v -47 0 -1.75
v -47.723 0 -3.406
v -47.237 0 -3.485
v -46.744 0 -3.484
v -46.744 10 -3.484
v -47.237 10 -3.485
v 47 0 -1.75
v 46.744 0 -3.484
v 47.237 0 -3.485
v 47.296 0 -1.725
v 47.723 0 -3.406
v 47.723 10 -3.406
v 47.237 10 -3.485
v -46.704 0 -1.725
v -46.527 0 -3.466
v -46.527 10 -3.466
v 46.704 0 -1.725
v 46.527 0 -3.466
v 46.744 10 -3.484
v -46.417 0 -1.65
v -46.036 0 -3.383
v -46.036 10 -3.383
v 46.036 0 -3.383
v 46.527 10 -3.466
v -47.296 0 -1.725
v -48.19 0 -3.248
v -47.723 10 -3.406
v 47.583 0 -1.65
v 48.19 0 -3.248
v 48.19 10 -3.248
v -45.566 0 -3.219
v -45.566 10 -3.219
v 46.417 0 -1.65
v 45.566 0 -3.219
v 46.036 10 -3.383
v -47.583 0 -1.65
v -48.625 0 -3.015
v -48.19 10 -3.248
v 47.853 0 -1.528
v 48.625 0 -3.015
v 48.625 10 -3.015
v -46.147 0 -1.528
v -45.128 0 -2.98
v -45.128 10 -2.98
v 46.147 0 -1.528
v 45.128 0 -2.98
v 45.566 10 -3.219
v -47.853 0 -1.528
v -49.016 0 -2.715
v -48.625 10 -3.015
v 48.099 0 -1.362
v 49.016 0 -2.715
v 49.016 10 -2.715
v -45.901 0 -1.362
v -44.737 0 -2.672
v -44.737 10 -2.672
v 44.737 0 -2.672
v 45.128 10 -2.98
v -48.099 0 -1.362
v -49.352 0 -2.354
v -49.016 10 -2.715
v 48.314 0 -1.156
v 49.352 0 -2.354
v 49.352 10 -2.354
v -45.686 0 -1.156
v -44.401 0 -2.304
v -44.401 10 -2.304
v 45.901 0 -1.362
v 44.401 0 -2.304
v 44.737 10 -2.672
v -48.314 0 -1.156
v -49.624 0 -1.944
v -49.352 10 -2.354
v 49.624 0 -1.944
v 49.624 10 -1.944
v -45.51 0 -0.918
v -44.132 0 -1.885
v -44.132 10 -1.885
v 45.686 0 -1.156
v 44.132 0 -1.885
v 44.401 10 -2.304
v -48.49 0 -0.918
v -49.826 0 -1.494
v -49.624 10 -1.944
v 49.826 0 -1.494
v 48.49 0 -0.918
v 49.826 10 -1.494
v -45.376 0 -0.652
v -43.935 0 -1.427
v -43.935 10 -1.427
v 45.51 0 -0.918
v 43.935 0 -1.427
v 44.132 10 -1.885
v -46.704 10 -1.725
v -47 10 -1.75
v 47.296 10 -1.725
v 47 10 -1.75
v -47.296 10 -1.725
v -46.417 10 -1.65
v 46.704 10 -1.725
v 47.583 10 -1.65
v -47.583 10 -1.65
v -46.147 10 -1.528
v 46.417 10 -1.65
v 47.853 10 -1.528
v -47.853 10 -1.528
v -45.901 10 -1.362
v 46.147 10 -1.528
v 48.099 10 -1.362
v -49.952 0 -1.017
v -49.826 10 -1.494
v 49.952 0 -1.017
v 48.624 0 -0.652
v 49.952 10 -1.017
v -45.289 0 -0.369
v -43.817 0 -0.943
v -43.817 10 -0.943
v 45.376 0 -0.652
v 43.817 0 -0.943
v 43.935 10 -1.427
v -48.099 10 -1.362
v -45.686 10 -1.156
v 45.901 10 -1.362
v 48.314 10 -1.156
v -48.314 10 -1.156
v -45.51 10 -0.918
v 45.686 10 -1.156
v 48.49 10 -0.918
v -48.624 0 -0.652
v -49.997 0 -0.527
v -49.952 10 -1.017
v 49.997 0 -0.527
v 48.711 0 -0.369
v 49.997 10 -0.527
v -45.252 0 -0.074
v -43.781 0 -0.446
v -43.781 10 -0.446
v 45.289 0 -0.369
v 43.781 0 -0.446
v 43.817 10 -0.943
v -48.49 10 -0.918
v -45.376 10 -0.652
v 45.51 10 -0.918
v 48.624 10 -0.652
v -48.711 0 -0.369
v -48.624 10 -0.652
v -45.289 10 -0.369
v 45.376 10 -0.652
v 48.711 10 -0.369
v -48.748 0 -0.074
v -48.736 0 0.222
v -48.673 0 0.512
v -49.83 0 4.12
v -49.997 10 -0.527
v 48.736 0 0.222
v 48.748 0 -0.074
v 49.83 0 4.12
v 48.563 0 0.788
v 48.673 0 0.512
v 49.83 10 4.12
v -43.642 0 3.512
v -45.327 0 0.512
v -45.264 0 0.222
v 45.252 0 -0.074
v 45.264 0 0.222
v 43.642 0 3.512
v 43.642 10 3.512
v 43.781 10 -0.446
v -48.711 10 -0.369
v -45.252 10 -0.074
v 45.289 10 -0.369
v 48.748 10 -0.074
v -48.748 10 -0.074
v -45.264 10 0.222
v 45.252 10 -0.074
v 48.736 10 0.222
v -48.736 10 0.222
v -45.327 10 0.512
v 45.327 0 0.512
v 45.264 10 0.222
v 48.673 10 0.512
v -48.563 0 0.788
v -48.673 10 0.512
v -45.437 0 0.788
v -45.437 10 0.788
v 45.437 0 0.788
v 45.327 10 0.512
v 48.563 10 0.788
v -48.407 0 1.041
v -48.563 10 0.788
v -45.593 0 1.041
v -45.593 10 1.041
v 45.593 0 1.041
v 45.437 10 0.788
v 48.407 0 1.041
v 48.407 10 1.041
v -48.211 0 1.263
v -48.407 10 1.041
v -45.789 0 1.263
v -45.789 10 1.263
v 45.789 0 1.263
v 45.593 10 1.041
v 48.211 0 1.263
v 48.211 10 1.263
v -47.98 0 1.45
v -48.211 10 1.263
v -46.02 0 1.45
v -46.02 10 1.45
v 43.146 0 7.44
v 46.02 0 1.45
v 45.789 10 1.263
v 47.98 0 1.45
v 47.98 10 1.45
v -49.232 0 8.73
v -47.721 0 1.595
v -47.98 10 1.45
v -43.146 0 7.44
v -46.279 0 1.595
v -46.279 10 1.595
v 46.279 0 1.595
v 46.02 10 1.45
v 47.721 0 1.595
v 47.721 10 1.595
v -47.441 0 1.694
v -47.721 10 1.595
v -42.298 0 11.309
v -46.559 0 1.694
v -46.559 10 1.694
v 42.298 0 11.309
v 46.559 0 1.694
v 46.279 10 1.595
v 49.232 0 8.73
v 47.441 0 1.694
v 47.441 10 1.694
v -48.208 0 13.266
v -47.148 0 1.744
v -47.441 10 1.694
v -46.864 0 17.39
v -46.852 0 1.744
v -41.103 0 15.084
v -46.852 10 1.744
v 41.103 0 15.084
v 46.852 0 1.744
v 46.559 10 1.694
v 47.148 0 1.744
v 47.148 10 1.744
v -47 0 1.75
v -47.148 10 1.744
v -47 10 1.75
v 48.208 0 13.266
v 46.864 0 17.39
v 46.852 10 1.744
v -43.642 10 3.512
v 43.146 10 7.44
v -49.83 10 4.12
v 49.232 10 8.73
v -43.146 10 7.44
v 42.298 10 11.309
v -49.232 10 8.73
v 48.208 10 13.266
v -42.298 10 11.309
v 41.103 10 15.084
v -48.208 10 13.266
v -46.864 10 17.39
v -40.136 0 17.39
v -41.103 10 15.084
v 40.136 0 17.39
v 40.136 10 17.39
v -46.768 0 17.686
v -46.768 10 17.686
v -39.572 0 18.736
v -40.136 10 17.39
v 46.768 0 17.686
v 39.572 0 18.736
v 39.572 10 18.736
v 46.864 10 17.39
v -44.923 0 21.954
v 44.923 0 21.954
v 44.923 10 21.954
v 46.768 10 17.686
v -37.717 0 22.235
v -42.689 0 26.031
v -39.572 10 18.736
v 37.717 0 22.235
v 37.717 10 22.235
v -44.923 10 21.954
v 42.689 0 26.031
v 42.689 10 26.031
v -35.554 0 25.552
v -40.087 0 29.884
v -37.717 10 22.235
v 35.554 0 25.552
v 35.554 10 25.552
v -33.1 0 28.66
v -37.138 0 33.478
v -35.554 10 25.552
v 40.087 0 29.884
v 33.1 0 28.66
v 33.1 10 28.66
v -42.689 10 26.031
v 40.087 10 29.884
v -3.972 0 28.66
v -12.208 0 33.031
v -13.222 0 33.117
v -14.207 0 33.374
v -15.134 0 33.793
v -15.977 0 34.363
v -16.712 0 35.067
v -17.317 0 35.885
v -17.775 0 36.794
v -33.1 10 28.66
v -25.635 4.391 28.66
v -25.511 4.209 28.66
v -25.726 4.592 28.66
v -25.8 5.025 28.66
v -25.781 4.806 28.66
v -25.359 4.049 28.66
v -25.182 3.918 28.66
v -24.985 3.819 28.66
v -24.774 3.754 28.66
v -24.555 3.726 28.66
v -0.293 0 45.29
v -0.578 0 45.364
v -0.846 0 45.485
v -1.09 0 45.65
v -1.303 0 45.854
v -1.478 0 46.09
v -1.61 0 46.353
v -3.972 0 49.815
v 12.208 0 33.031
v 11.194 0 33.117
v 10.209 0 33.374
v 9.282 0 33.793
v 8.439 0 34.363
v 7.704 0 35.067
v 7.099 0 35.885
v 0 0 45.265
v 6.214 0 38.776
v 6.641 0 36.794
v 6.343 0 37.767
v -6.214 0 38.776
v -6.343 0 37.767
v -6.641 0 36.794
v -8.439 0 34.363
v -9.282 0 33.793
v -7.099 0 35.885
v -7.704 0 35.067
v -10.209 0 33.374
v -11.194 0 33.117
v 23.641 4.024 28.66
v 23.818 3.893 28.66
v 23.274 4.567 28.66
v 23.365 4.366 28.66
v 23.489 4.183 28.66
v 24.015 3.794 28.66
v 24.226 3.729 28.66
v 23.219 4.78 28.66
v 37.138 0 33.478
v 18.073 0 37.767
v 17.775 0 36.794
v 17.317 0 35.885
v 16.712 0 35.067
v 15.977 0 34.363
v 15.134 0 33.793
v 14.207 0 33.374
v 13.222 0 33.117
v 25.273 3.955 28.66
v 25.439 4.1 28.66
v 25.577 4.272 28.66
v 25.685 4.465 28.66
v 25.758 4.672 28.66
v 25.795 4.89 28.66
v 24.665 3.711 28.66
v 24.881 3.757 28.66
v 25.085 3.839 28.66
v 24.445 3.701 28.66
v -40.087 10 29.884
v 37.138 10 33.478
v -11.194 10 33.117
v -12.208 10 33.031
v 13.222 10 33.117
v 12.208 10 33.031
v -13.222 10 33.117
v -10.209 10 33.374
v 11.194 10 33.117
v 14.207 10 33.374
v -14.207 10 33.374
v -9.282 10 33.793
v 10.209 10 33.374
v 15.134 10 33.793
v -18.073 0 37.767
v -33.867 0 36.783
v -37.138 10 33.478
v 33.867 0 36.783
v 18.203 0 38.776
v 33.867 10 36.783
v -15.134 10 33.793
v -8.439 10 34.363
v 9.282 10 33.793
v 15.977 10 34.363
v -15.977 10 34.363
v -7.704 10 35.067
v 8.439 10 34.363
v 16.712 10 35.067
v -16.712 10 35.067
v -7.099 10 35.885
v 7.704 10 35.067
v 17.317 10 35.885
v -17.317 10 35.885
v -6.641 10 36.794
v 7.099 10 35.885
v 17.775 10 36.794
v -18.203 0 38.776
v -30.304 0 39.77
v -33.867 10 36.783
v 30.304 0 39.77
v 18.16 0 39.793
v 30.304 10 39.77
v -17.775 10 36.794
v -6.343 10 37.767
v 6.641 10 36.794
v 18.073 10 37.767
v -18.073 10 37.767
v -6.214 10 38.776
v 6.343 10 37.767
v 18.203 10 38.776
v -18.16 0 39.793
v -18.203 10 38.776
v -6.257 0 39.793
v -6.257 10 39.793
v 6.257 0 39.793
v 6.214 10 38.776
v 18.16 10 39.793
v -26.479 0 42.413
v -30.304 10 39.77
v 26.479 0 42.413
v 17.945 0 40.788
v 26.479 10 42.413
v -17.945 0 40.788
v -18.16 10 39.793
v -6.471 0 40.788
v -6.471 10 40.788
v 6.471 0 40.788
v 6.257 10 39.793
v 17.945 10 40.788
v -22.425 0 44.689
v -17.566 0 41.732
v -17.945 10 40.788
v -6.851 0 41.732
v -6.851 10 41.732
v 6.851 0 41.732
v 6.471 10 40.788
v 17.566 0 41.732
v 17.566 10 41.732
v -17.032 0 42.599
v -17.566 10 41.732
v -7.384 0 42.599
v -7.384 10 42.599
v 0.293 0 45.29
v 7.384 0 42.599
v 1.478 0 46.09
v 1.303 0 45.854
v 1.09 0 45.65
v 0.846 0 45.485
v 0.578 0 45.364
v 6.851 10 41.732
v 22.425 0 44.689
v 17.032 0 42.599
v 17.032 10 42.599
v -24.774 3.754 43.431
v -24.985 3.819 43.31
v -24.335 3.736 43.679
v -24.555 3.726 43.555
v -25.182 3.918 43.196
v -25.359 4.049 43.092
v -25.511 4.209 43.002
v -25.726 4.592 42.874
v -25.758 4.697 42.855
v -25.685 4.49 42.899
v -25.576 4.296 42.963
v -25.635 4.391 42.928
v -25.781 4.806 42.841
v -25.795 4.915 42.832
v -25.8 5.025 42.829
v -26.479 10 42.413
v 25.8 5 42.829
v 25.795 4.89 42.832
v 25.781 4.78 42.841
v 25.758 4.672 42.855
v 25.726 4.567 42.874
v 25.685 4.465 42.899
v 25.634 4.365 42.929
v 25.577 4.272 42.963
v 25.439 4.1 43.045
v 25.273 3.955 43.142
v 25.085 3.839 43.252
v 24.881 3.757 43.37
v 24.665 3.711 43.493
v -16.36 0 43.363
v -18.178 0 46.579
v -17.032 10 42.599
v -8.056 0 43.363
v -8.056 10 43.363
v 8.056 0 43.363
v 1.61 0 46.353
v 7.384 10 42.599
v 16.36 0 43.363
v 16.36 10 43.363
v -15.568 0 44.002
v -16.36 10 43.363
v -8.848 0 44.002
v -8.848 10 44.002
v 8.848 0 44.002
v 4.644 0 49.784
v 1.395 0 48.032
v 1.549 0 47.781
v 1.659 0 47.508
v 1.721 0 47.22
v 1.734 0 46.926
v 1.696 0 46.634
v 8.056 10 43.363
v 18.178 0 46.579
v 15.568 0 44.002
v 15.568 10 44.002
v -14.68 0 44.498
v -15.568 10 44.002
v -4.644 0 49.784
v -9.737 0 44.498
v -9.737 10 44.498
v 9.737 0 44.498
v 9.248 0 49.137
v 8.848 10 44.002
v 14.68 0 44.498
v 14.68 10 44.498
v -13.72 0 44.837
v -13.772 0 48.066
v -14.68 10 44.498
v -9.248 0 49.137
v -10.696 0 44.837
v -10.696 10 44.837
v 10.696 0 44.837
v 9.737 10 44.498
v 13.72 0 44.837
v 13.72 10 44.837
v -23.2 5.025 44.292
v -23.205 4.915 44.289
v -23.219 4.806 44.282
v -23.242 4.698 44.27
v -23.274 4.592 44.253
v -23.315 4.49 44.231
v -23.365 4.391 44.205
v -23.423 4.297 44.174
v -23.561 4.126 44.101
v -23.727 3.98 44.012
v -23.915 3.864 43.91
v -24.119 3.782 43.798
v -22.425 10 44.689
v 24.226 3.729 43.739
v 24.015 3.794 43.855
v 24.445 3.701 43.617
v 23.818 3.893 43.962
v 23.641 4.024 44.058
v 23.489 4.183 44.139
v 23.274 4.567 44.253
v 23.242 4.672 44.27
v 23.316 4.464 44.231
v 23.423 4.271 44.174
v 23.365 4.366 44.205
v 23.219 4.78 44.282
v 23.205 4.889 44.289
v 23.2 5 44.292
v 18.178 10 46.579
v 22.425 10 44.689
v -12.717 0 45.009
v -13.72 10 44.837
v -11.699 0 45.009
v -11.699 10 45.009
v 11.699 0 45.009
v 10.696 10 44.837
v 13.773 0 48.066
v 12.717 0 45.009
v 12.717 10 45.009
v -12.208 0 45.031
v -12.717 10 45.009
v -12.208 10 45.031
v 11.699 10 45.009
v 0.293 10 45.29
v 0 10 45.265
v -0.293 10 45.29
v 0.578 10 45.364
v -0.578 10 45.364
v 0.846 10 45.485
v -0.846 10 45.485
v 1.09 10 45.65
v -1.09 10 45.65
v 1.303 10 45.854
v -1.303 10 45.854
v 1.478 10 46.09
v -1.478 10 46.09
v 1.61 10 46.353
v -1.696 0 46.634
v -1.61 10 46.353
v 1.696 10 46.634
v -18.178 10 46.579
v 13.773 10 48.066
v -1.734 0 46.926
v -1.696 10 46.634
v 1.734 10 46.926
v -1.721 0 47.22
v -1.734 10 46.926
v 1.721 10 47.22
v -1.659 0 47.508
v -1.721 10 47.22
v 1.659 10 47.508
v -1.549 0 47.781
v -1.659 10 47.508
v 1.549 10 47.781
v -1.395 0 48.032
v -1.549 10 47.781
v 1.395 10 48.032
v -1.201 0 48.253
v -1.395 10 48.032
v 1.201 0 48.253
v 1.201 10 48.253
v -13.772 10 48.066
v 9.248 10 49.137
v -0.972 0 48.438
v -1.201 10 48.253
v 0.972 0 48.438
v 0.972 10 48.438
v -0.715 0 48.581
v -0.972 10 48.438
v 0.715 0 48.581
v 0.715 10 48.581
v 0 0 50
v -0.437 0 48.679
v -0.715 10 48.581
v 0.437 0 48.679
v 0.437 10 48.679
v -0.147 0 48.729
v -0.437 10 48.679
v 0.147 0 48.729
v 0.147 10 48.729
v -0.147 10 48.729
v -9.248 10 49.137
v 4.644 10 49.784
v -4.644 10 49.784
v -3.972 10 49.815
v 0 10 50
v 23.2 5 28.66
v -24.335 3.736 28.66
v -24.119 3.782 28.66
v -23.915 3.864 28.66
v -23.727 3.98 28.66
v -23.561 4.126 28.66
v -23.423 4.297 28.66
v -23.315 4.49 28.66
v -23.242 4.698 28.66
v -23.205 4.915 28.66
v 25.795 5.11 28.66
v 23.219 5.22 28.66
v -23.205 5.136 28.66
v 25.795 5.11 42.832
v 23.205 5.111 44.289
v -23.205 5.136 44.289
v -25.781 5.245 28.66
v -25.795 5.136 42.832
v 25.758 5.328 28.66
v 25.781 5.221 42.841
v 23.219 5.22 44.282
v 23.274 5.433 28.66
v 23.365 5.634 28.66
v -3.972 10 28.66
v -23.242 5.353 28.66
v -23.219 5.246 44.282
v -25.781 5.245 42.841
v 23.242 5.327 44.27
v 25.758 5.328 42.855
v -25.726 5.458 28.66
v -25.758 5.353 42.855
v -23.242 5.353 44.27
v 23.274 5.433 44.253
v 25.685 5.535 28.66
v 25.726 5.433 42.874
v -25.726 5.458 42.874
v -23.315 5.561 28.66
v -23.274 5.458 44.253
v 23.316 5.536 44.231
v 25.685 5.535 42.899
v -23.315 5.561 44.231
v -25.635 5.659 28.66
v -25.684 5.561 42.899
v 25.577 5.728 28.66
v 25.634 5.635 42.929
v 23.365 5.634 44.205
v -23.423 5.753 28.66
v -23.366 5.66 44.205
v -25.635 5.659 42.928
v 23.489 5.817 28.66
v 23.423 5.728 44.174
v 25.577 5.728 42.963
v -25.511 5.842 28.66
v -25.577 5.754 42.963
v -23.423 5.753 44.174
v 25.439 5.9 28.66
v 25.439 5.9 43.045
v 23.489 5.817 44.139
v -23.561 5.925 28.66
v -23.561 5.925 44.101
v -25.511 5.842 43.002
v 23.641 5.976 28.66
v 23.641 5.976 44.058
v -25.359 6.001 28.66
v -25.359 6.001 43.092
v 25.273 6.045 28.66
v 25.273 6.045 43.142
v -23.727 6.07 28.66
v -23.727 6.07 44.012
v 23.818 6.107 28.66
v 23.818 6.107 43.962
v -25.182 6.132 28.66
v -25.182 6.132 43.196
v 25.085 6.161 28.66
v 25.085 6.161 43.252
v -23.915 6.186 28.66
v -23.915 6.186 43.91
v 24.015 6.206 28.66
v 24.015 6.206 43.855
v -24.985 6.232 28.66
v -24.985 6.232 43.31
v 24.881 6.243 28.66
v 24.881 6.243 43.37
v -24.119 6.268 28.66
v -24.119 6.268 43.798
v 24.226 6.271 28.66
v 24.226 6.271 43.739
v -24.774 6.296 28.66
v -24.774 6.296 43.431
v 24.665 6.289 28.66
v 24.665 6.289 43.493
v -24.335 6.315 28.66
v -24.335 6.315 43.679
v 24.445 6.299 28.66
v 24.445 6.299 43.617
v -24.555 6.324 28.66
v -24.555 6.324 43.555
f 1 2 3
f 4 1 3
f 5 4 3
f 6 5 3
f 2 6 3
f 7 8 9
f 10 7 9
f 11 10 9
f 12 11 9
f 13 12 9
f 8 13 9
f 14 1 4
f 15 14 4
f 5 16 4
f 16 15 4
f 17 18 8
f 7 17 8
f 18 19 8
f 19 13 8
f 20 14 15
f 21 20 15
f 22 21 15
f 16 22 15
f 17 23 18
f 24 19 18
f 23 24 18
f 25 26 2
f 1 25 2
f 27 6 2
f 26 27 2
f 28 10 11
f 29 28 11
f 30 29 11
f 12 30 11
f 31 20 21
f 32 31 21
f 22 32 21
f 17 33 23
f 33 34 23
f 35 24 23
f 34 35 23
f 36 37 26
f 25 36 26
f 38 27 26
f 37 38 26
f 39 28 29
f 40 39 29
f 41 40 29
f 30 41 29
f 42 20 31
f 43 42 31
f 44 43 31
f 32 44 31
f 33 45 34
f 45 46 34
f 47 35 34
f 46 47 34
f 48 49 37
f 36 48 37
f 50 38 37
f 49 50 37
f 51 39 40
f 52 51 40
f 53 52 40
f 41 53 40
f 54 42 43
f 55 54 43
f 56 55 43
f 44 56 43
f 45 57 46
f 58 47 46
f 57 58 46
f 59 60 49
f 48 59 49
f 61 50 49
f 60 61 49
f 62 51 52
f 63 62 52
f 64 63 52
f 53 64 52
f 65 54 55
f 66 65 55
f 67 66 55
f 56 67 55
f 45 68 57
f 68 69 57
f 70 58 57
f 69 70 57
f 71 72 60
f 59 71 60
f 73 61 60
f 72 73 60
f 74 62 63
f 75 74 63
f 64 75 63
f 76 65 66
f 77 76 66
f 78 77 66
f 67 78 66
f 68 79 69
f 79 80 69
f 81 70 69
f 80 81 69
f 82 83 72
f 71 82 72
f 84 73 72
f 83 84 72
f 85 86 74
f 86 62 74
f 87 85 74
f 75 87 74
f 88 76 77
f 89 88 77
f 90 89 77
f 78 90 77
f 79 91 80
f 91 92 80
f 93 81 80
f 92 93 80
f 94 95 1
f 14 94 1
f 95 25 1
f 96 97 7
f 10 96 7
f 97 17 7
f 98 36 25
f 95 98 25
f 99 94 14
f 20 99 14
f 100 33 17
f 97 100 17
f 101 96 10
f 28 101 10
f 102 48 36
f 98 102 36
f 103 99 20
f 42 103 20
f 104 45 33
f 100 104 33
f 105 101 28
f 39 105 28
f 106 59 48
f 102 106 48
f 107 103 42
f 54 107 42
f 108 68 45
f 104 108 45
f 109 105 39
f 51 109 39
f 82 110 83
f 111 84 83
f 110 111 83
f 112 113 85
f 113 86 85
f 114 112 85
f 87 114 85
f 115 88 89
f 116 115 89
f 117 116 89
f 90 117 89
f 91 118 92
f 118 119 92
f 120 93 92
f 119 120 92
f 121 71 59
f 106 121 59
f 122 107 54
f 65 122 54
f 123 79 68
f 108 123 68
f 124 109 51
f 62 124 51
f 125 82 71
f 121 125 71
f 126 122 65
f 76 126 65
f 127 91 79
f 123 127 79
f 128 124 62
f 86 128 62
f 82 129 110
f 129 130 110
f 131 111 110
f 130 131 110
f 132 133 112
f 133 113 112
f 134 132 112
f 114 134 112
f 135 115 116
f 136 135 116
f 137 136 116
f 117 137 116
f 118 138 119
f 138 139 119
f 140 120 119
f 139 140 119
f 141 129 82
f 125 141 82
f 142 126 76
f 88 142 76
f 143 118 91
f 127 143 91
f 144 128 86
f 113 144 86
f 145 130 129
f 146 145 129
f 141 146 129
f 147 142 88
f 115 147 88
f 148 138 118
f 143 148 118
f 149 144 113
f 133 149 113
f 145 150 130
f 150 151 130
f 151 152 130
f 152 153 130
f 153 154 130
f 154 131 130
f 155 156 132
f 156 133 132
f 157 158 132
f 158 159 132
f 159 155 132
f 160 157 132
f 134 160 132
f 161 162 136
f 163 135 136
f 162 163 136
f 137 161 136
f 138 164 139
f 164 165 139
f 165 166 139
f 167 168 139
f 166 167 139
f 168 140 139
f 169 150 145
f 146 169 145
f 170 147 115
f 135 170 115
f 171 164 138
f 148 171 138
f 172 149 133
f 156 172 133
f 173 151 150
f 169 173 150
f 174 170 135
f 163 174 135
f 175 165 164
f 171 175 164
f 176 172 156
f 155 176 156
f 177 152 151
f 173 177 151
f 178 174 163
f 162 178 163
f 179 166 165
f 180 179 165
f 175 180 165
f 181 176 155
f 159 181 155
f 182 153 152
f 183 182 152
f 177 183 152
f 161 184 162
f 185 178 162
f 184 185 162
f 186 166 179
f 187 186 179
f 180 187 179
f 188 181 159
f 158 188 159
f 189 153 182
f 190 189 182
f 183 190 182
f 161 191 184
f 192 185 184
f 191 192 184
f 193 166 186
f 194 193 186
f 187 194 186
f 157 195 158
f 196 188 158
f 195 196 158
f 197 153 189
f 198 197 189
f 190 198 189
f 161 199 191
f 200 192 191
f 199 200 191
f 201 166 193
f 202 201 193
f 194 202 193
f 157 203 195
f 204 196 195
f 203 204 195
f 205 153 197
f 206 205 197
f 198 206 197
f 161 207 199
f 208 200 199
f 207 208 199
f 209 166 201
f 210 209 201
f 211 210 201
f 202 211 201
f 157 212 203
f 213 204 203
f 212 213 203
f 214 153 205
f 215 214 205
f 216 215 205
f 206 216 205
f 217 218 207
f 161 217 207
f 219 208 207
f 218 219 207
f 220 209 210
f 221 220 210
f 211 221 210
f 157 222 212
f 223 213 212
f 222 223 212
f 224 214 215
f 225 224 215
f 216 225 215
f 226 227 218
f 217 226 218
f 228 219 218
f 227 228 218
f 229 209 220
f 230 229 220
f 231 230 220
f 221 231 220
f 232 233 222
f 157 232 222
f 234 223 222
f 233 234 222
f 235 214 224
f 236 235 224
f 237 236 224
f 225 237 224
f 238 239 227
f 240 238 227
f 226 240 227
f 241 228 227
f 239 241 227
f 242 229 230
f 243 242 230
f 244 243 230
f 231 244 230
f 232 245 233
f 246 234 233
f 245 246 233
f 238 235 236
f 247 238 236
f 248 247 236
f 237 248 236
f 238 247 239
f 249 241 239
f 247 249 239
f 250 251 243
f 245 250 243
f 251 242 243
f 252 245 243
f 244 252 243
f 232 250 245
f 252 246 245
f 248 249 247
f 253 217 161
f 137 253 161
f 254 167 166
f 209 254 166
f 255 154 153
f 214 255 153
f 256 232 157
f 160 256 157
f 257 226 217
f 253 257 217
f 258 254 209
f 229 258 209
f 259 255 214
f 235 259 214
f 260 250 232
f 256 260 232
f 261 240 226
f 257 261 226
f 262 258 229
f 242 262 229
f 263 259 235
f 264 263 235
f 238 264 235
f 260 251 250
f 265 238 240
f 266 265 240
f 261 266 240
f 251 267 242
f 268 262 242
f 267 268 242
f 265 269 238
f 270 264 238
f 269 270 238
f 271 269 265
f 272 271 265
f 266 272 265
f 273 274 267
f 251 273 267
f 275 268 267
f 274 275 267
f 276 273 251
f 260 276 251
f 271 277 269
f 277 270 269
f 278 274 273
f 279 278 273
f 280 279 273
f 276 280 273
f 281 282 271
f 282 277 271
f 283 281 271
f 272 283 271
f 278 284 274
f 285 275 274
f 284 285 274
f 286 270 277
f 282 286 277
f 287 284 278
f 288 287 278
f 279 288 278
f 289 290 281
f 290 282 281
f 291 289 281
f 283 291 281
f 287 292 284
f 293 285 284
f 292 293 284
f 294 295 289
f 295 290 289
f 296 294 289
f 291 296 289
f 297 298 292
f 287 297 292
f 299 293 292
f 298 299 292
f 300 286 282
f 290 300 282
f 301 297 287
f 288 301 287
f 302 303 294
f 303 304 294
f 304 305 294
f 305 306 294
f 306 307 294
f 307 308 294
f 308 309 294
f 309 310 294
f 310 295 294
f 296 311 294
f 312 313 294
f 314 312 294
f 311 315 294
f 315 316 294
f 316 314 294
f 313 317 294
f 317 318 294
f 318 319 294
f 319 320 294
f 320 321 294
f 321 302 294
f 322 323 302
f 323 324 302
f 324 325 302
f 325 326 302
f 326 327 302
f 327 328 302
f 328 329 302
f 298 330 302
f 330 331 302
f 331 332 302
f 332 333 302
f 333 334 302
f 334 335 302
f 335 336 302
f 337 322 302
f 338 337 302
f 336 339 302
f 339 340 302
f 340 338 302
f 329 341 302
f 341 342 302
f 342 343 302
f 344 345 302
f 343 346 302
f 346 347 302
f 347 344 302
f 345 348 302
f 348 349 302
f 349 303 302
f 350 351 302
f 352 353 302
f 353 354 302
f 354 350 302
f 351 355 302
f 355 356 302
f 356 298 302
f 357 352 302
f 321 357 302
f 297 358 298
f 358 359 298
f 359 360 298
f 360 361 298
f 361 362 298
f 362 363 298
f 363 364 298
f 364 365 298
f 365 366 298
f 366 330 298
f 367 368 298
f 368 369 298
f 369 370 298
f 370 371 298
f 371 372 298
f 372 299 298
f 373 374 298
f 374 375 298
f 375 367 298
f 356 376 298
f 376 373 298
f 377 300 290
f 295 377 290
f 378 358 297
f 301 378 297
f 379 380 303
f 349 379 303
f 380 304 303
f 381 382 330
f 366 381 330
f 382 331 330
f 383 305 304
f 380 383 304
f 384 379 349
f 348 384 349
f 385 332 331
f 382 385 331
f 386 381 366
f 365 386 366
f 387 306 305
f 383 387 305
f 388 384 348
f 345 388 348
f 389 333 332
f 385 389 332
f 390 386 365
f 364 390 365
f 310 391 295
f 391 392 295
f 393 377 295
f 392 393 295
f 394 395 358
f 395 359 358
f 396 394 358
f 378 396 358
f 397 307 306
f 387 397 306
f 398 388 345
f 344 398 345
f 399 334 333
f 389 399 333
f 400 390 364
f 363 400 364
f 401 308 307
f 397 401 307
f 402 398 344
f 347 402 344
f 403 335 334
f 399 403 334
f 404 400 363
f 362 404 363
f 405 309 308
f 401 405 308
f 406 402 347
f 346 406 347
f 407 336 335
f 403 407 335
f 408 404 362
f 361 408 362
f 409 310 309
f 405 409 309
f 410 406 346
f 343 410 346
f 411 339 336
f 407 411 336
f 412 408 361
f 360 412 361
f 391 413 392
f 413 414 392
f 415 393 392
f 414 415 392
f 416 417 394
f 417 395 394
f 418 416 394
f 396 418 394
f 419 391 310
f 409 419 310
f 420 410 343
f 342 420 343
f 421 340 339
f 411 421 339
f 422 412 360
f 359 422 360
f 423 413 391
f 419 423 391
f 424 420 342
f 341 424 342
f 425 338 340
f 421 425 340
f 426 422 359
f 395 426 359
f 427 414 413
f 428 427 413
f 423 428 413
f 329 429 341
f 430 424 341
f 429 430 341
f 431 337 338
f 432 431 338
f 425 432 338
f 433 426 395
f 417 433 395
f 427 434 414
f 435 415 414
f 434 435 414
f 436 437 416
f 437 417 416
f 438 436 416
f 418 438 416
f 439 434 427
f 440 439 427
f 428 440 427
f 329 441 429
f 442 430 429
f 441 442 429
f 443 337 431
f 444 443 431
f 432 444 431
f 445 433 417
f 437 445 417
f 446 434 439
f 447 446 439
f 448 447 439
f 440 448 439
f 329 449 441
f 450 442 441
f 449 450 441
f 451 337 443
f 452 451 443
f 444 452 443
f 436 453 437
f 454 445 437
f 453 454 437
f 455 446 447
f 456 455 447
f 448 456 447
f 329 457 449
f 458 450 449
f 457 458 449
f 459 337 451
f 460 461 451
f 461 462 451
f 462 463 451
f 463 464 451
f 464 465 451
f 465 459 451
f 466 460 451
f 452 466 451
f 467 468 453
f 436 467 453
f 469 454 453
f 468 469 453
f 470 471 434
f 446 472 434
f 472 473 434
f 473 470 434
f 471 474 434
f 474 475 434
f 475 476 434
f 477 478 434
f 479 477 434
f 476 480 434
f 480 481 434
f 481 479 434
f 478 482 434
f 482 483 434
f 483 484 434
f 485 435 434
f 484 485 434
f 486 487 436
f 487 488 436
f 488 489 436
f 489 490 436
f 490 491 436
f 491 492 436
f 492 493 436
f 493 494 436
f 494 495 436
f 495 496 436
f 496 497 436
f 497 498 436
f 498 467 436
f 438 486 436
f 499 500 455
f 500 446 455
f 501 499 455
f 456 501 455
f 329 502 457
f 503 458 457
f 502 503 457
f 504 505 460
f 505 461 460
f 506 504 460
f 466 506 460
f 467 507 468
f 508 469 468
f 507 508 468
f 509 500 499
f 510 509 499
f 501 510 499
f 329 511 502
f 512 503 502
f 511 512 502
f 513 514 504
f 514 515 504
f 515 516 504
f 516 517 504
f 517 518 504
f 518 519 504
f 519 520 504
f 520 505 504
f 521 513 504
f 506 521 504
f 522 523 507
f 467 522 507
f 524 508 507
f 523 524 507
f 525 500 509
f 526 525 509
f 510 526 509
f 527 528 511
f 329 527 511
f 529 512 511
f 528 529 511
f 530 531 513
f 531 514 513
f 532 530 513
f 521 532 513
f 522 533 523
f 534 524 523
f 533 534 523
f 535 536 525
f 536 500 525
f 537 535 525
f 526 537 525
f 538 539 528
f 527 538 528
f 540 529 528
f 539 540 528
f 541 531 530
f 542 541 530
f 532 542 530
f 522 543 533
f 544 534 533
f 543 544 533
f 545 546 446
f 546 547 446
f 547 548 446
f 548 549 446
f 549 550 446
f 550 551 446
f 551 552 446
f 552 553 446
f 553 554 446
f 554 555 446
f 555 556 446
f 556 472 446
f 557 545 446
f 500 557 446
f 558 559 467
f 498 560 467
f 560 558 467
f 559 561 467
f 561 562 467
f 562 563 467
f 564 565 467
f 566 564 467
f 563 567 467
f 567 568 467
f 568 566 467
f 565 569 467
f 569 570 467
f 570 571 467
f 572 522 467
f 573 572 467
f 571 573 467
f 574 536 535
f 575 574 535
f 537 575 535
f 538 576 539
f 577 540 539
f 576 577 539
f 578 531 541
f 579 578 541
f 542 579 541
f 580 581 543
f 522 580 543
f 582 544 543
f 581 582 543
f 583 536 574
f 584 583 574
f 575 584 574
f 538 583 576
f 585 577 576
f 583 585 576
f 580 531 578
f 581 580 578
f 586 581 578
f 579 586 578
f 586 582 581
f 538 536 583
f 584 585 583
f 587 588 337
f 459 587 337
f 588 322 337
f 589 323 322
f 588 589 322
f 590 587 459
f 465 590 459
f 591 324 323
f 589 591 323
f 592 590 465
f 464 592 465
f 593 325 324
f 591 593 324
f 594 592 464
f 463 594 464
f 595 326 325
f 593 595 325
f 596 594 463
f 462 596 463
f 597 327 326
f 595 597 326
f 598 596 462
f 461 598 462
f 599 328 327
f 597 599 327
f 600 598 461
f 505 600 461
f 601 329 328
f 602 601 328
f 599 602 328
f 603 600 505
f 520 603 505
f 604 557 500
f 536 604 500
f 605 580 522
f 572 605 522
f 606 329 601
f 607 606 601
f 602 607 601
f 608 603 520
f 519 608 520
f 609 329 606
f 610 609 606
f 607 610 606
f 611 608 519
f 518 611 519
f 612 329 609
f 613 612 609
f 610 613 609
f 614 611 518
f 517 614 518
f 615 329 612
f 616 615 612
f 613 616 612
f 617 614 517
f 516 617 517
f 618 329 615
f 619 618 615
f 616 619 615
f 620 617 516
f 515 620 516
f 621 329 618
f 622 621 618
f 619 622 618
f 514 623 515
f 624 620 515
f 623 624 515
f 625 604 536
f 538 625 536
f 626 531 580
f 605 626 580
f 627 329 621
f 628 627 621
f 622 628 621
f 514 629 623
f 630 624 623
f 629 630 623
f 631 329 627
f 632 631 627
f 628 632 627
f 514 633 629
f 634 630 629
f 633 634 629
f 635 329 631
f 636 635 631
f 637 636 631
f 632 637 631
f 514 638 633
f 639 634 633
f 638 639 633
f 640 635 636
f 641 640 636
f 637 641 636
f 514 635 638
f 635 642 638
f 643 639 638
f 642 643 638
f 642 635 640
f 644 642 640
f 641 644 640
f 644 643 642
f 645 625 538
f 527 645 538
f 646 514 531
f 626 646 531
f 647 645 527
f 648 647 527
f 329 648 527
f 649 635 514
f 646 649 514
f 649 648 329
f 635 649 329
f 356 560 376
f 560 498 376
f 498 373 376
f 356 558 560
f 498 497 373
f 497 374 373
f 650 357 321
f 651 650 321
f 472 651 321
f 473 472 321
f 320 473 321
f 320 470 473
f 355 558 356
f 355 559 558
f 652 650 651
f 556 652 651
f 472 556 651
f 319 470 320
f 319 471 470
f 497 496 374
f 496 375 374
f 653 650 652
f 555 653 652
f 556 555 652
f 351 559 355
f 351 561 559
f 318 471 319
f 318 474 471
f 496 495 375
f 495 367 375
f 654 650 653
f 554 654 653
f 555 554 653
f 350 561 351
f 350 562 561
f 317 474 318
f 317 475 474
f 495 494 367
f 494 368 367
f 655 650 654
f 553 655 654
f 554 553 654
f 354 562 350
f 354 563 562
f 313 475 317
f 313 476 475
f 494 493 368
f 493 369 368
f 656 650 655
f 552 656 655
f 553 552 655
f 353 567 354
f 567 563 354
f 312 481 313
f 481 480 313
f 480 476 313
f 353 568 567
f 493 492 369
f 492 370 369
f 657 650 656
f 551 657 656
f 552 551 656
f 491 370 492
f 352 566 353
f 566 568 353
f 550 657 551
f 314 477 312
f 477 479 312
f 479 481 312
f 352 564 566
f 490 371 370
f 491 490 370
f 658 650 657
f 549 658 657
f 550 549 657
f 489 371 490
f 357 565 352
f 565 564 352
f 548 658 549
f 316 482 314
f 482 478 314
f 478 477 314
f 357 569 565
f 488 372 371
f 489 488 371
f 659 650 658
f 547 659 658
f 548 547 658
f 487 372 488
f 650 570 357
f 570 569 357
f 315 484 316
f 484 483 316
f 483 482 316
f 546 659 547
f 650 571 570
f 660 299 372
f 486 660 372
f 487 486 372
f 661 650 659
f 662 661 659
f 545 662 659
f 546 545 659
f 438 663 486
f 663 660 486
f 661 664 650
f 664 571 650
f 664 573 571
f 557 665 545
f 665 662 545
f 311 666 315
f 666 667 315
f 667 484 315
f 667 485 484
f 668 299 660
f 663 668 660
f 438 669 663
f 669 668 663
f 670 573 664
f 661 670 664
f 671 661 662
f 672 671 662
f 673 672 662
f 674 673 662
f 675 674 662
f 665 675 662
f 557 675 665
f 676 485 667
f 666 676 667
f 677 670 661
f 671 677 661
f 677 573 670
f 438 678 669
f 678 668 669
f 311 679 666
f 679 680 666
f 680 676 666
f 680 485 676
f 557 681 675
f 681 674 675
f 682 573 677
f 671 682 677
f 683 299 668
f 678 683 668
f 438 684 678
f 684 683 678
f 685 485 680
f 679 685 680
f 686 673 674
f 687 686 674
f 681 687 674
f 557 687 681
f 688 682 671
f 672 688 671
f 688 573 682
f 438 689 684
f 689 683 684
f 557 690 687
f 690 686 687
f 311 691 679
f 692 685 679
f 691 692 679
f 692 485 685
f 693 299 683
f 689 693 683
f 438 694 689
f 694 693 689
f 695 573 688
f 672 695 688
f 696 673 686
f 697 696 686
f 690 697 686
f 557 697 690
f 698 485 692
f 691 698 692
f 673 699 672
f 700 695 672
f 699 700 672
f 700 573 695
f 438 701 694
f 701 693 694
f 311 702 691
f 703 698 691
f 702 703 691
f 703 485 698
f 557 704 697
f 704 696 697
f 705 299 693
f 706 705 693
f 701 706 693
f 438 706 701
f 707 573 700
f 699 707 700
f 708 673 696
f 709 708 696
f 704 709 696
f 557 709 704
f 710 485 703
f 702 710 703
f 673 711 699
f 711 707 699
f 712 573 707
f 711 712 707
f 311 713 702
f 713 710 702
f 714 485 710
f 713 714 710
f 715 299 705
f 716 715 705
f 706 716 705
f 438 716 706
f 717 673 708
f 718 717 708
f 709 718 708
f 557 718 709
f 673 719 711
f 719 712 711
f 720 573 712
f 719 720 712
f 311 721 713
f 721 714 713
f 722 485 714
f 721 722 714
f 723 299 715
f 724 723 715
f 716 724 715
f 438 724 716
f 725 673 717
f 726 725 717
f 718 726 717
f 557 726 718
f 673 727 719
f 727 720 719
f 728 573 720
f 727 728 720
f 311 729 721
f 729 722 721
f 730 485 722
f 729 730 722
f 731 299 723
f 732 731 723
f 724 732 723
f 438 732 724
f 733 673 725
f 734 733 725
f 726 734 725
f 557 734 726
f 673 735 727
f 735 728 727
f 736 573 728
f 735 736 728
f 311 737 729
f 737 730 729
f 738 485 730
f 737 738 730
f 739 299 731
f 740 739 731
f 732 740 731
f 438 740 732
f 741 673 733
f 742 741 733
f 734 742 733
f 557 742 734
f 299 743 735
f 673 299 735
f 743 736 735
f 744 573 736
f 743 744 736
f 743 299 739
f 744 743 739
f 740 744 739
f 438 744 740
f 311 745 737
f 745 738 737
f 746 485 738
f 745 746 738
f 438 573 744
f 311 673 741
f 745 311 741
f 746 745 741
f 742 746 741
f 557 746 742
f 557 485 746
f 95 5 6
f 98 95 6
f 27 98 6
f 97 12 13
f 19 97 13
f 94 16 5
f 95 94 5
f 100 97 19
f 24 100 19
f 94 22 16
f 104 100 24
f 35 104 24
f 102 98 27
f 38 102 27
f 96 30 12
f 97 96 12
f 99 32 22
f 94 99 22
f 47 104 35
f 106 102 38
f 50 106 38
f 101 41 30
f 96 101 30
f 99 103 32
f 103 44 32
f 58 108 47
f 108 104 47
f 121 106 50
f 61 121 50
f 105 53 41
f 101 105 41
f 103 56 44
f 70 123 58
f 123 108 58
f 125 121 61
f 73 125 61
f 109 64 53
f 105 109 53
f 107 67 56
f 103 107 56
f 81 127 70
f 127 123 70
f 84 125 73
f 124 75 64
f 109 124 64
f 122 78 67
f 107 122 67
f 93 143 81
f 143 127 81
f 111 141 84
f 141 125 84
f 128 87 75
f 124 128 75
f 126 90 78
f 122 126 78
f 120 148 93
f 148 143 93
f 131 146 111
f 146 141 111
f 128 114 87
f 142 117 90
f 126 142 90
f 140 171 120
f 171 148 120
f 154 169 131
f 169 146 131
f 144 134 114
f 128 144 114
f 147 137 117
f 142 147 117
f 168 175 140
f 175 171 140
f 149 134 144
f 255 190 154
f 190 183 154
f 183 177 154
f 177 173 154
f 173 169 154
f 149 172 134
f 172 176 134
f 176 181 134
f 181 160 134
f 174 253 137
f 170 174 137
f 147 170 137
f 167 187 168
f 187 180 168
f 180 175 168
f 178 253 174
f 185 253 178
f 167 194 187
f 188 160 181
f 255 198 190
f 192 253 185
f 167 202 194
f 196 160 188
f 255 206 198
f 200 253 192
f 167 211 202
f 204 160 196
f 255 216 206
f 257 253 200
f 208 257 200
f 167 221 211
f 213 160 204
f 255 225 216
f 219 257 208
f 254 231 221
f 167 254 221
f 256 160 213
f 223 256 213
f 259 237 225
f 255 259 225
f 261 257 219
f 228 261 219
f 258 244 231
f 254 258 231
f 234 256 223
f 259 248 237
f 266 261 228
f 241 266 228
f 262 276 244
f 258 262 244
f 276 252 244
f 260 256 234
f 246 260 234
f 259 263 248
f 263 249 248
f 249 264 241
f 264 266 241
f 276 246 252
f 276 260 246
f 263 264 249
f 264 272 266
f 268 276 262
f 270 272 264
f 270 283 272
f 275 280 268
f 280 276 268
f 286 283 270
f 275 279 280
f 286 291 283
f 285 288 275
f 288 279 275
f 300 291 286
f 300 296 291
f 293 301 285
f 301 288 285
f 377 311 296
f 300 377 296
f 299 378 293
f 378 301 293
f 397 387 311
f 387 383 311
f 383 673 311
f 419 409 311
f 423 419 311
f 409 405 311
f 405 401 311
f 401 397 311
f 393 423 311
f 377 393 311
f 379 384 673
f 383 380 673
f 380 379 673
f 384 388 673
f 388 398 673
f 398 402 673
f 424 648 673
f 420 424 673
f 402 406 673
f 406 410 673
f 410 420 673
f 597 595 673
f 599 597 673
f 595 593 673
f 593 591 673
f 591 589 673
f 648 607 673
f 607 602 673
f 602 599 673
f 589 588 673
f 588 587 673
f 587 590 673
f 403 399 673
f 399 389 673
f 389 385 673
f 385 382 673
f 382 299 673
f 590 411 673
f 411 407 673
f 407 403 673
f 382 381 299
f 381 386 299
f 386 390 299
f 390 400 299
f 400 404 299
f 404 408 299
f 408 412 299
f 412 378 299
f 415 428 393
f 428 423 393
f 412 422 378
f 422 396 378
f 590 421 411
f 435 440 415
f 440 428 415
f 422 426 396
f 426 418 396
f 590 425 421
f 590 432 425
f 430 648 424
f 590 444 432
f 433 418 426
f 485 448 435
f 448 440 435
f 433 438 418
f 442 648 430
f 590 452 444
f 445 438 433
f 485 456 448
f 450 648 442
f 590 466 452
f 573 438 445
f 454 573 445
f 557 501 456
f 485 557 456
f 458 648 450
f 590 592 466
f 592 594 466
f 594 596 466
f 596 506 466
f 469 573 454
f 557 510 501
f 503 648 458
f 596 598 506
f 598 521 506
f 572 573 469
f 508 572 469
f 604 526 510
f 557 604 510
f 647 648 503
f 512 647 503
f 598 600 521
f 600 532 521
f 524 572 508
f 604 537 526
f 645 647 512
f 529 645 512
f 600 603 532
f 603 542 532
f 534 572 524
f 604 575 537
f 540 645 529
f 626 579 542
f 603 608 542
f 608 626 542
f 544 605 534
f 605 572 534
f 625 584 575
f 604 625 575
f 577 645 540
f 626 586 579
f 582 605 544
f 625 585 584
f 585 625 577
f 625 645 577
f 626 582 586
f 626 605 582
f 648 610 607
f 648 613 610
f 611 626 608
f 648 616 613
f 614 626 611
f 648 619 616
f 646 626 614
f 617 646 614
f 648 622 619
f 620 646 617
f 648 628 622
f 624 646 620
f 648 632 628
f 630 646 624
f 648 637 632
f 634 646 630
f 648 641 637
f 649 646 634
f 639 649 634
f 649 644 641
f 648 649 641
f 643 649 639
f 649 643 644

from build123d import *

# Parameters (mm, degrees)
SKETCH1_R           = 1.75
SKETCH1_R_2         = 6
SKETCH1_R_3         = 1.735302394
BOSS_EXTRUDE1_DEPTH = 10
FILLET2_R           = 3
SKETCH2_R           = 1.3
CUT_EXTRUDE1_DEPTH  = 20


with BuildPart() as part:
    # Sketch1 → Boss-Extrude1 (new body)
    with BuildSketch(Plane(origin=(0, 0, 0), x_dir=(1, 0, 0), z_dir=(0, 1, 0))):
        with BuildLine():
            Line((49.859310292, 3.748223209), (43.664405044, 3.223270017))
            ThreePointArc((43.664405044, 3.223270017), (41.560921763, -13.771692694), (33.099549072, -28.659895126))
            Line((33.099549072, -28.659895126), (-33.099549072, -28.659895126))
            ThreePointArc((-33.099549072, -28.659895126), (-41.560921763, -13.771692694), (-43.664405044, 3.223270017))
            Line((-43.664405044, 3.223270017), (-49.859310292, 3.748223209))
            ThreePointArc((-49.859310292, 3.748223209), (0, -50), (49.859310292, 3.748223209))
        make_face()
        with Locations(Location((-47, 0, 0), (0, 0, 270))):
            Circle(SKETCH1_R, mode=Mode.SUBTRACT)
        with Locations(Location((-12.208117153, -39.030992967, 0), (0, 0, 270))):
            Circle(SKETCH1_R_2, mode=Mode.SUBTRACT)
        with Locations(Location((0, -47, 0), (0, 0, 90))):
            Circle(SKETCH1_R_3, mode=Mode.SUBTRACT)
        with Locations(Location((12.208117153, -39.030992967, 0), (0, 0, 90))):
            Circle(SKETCH1_R_2, mode=Mode.SUBTRACT)
        with Locations(Location((47, 0, 0), (0, 0, 90))):
            Circle(SKETCH1_R, mode=Mode.SUBTRACT)
    extrude(amount=BOSS_EXTRUDE1_DEPTH)

    # Fillet2
    fillet2_edges = [part.edges().sort_by_distance(p)[0] for p in [
        (43.664405044, 5, -3.223270017),
        (49.859310292, 5, -3.748223209),
        (-49.859310292, 5, -3.748223209),
        (-43.664405044, 5, -3.223270017),
    ]]
    fillet(fillet2_edges, radius=FILLET2_R)

    # Sketch2 → Cut-Extrude1 (cut)
    with BuildSketch(Plane(origin=(0, 0, 28.659895126), x_dir=(-1, 0, 0), z_dir=(0, 0, -1))):
        with Locations((24.499993487, 5.025263165)):
            Circle(SKETCH2_R)
        with Locations((-24.5, 5)):
            Circle(SKETCH2_R)
    extrude(amount=-CUT_EXTRUDE1_DEPTH, mode=Mode.SUBTRACT)


solid = part.part
